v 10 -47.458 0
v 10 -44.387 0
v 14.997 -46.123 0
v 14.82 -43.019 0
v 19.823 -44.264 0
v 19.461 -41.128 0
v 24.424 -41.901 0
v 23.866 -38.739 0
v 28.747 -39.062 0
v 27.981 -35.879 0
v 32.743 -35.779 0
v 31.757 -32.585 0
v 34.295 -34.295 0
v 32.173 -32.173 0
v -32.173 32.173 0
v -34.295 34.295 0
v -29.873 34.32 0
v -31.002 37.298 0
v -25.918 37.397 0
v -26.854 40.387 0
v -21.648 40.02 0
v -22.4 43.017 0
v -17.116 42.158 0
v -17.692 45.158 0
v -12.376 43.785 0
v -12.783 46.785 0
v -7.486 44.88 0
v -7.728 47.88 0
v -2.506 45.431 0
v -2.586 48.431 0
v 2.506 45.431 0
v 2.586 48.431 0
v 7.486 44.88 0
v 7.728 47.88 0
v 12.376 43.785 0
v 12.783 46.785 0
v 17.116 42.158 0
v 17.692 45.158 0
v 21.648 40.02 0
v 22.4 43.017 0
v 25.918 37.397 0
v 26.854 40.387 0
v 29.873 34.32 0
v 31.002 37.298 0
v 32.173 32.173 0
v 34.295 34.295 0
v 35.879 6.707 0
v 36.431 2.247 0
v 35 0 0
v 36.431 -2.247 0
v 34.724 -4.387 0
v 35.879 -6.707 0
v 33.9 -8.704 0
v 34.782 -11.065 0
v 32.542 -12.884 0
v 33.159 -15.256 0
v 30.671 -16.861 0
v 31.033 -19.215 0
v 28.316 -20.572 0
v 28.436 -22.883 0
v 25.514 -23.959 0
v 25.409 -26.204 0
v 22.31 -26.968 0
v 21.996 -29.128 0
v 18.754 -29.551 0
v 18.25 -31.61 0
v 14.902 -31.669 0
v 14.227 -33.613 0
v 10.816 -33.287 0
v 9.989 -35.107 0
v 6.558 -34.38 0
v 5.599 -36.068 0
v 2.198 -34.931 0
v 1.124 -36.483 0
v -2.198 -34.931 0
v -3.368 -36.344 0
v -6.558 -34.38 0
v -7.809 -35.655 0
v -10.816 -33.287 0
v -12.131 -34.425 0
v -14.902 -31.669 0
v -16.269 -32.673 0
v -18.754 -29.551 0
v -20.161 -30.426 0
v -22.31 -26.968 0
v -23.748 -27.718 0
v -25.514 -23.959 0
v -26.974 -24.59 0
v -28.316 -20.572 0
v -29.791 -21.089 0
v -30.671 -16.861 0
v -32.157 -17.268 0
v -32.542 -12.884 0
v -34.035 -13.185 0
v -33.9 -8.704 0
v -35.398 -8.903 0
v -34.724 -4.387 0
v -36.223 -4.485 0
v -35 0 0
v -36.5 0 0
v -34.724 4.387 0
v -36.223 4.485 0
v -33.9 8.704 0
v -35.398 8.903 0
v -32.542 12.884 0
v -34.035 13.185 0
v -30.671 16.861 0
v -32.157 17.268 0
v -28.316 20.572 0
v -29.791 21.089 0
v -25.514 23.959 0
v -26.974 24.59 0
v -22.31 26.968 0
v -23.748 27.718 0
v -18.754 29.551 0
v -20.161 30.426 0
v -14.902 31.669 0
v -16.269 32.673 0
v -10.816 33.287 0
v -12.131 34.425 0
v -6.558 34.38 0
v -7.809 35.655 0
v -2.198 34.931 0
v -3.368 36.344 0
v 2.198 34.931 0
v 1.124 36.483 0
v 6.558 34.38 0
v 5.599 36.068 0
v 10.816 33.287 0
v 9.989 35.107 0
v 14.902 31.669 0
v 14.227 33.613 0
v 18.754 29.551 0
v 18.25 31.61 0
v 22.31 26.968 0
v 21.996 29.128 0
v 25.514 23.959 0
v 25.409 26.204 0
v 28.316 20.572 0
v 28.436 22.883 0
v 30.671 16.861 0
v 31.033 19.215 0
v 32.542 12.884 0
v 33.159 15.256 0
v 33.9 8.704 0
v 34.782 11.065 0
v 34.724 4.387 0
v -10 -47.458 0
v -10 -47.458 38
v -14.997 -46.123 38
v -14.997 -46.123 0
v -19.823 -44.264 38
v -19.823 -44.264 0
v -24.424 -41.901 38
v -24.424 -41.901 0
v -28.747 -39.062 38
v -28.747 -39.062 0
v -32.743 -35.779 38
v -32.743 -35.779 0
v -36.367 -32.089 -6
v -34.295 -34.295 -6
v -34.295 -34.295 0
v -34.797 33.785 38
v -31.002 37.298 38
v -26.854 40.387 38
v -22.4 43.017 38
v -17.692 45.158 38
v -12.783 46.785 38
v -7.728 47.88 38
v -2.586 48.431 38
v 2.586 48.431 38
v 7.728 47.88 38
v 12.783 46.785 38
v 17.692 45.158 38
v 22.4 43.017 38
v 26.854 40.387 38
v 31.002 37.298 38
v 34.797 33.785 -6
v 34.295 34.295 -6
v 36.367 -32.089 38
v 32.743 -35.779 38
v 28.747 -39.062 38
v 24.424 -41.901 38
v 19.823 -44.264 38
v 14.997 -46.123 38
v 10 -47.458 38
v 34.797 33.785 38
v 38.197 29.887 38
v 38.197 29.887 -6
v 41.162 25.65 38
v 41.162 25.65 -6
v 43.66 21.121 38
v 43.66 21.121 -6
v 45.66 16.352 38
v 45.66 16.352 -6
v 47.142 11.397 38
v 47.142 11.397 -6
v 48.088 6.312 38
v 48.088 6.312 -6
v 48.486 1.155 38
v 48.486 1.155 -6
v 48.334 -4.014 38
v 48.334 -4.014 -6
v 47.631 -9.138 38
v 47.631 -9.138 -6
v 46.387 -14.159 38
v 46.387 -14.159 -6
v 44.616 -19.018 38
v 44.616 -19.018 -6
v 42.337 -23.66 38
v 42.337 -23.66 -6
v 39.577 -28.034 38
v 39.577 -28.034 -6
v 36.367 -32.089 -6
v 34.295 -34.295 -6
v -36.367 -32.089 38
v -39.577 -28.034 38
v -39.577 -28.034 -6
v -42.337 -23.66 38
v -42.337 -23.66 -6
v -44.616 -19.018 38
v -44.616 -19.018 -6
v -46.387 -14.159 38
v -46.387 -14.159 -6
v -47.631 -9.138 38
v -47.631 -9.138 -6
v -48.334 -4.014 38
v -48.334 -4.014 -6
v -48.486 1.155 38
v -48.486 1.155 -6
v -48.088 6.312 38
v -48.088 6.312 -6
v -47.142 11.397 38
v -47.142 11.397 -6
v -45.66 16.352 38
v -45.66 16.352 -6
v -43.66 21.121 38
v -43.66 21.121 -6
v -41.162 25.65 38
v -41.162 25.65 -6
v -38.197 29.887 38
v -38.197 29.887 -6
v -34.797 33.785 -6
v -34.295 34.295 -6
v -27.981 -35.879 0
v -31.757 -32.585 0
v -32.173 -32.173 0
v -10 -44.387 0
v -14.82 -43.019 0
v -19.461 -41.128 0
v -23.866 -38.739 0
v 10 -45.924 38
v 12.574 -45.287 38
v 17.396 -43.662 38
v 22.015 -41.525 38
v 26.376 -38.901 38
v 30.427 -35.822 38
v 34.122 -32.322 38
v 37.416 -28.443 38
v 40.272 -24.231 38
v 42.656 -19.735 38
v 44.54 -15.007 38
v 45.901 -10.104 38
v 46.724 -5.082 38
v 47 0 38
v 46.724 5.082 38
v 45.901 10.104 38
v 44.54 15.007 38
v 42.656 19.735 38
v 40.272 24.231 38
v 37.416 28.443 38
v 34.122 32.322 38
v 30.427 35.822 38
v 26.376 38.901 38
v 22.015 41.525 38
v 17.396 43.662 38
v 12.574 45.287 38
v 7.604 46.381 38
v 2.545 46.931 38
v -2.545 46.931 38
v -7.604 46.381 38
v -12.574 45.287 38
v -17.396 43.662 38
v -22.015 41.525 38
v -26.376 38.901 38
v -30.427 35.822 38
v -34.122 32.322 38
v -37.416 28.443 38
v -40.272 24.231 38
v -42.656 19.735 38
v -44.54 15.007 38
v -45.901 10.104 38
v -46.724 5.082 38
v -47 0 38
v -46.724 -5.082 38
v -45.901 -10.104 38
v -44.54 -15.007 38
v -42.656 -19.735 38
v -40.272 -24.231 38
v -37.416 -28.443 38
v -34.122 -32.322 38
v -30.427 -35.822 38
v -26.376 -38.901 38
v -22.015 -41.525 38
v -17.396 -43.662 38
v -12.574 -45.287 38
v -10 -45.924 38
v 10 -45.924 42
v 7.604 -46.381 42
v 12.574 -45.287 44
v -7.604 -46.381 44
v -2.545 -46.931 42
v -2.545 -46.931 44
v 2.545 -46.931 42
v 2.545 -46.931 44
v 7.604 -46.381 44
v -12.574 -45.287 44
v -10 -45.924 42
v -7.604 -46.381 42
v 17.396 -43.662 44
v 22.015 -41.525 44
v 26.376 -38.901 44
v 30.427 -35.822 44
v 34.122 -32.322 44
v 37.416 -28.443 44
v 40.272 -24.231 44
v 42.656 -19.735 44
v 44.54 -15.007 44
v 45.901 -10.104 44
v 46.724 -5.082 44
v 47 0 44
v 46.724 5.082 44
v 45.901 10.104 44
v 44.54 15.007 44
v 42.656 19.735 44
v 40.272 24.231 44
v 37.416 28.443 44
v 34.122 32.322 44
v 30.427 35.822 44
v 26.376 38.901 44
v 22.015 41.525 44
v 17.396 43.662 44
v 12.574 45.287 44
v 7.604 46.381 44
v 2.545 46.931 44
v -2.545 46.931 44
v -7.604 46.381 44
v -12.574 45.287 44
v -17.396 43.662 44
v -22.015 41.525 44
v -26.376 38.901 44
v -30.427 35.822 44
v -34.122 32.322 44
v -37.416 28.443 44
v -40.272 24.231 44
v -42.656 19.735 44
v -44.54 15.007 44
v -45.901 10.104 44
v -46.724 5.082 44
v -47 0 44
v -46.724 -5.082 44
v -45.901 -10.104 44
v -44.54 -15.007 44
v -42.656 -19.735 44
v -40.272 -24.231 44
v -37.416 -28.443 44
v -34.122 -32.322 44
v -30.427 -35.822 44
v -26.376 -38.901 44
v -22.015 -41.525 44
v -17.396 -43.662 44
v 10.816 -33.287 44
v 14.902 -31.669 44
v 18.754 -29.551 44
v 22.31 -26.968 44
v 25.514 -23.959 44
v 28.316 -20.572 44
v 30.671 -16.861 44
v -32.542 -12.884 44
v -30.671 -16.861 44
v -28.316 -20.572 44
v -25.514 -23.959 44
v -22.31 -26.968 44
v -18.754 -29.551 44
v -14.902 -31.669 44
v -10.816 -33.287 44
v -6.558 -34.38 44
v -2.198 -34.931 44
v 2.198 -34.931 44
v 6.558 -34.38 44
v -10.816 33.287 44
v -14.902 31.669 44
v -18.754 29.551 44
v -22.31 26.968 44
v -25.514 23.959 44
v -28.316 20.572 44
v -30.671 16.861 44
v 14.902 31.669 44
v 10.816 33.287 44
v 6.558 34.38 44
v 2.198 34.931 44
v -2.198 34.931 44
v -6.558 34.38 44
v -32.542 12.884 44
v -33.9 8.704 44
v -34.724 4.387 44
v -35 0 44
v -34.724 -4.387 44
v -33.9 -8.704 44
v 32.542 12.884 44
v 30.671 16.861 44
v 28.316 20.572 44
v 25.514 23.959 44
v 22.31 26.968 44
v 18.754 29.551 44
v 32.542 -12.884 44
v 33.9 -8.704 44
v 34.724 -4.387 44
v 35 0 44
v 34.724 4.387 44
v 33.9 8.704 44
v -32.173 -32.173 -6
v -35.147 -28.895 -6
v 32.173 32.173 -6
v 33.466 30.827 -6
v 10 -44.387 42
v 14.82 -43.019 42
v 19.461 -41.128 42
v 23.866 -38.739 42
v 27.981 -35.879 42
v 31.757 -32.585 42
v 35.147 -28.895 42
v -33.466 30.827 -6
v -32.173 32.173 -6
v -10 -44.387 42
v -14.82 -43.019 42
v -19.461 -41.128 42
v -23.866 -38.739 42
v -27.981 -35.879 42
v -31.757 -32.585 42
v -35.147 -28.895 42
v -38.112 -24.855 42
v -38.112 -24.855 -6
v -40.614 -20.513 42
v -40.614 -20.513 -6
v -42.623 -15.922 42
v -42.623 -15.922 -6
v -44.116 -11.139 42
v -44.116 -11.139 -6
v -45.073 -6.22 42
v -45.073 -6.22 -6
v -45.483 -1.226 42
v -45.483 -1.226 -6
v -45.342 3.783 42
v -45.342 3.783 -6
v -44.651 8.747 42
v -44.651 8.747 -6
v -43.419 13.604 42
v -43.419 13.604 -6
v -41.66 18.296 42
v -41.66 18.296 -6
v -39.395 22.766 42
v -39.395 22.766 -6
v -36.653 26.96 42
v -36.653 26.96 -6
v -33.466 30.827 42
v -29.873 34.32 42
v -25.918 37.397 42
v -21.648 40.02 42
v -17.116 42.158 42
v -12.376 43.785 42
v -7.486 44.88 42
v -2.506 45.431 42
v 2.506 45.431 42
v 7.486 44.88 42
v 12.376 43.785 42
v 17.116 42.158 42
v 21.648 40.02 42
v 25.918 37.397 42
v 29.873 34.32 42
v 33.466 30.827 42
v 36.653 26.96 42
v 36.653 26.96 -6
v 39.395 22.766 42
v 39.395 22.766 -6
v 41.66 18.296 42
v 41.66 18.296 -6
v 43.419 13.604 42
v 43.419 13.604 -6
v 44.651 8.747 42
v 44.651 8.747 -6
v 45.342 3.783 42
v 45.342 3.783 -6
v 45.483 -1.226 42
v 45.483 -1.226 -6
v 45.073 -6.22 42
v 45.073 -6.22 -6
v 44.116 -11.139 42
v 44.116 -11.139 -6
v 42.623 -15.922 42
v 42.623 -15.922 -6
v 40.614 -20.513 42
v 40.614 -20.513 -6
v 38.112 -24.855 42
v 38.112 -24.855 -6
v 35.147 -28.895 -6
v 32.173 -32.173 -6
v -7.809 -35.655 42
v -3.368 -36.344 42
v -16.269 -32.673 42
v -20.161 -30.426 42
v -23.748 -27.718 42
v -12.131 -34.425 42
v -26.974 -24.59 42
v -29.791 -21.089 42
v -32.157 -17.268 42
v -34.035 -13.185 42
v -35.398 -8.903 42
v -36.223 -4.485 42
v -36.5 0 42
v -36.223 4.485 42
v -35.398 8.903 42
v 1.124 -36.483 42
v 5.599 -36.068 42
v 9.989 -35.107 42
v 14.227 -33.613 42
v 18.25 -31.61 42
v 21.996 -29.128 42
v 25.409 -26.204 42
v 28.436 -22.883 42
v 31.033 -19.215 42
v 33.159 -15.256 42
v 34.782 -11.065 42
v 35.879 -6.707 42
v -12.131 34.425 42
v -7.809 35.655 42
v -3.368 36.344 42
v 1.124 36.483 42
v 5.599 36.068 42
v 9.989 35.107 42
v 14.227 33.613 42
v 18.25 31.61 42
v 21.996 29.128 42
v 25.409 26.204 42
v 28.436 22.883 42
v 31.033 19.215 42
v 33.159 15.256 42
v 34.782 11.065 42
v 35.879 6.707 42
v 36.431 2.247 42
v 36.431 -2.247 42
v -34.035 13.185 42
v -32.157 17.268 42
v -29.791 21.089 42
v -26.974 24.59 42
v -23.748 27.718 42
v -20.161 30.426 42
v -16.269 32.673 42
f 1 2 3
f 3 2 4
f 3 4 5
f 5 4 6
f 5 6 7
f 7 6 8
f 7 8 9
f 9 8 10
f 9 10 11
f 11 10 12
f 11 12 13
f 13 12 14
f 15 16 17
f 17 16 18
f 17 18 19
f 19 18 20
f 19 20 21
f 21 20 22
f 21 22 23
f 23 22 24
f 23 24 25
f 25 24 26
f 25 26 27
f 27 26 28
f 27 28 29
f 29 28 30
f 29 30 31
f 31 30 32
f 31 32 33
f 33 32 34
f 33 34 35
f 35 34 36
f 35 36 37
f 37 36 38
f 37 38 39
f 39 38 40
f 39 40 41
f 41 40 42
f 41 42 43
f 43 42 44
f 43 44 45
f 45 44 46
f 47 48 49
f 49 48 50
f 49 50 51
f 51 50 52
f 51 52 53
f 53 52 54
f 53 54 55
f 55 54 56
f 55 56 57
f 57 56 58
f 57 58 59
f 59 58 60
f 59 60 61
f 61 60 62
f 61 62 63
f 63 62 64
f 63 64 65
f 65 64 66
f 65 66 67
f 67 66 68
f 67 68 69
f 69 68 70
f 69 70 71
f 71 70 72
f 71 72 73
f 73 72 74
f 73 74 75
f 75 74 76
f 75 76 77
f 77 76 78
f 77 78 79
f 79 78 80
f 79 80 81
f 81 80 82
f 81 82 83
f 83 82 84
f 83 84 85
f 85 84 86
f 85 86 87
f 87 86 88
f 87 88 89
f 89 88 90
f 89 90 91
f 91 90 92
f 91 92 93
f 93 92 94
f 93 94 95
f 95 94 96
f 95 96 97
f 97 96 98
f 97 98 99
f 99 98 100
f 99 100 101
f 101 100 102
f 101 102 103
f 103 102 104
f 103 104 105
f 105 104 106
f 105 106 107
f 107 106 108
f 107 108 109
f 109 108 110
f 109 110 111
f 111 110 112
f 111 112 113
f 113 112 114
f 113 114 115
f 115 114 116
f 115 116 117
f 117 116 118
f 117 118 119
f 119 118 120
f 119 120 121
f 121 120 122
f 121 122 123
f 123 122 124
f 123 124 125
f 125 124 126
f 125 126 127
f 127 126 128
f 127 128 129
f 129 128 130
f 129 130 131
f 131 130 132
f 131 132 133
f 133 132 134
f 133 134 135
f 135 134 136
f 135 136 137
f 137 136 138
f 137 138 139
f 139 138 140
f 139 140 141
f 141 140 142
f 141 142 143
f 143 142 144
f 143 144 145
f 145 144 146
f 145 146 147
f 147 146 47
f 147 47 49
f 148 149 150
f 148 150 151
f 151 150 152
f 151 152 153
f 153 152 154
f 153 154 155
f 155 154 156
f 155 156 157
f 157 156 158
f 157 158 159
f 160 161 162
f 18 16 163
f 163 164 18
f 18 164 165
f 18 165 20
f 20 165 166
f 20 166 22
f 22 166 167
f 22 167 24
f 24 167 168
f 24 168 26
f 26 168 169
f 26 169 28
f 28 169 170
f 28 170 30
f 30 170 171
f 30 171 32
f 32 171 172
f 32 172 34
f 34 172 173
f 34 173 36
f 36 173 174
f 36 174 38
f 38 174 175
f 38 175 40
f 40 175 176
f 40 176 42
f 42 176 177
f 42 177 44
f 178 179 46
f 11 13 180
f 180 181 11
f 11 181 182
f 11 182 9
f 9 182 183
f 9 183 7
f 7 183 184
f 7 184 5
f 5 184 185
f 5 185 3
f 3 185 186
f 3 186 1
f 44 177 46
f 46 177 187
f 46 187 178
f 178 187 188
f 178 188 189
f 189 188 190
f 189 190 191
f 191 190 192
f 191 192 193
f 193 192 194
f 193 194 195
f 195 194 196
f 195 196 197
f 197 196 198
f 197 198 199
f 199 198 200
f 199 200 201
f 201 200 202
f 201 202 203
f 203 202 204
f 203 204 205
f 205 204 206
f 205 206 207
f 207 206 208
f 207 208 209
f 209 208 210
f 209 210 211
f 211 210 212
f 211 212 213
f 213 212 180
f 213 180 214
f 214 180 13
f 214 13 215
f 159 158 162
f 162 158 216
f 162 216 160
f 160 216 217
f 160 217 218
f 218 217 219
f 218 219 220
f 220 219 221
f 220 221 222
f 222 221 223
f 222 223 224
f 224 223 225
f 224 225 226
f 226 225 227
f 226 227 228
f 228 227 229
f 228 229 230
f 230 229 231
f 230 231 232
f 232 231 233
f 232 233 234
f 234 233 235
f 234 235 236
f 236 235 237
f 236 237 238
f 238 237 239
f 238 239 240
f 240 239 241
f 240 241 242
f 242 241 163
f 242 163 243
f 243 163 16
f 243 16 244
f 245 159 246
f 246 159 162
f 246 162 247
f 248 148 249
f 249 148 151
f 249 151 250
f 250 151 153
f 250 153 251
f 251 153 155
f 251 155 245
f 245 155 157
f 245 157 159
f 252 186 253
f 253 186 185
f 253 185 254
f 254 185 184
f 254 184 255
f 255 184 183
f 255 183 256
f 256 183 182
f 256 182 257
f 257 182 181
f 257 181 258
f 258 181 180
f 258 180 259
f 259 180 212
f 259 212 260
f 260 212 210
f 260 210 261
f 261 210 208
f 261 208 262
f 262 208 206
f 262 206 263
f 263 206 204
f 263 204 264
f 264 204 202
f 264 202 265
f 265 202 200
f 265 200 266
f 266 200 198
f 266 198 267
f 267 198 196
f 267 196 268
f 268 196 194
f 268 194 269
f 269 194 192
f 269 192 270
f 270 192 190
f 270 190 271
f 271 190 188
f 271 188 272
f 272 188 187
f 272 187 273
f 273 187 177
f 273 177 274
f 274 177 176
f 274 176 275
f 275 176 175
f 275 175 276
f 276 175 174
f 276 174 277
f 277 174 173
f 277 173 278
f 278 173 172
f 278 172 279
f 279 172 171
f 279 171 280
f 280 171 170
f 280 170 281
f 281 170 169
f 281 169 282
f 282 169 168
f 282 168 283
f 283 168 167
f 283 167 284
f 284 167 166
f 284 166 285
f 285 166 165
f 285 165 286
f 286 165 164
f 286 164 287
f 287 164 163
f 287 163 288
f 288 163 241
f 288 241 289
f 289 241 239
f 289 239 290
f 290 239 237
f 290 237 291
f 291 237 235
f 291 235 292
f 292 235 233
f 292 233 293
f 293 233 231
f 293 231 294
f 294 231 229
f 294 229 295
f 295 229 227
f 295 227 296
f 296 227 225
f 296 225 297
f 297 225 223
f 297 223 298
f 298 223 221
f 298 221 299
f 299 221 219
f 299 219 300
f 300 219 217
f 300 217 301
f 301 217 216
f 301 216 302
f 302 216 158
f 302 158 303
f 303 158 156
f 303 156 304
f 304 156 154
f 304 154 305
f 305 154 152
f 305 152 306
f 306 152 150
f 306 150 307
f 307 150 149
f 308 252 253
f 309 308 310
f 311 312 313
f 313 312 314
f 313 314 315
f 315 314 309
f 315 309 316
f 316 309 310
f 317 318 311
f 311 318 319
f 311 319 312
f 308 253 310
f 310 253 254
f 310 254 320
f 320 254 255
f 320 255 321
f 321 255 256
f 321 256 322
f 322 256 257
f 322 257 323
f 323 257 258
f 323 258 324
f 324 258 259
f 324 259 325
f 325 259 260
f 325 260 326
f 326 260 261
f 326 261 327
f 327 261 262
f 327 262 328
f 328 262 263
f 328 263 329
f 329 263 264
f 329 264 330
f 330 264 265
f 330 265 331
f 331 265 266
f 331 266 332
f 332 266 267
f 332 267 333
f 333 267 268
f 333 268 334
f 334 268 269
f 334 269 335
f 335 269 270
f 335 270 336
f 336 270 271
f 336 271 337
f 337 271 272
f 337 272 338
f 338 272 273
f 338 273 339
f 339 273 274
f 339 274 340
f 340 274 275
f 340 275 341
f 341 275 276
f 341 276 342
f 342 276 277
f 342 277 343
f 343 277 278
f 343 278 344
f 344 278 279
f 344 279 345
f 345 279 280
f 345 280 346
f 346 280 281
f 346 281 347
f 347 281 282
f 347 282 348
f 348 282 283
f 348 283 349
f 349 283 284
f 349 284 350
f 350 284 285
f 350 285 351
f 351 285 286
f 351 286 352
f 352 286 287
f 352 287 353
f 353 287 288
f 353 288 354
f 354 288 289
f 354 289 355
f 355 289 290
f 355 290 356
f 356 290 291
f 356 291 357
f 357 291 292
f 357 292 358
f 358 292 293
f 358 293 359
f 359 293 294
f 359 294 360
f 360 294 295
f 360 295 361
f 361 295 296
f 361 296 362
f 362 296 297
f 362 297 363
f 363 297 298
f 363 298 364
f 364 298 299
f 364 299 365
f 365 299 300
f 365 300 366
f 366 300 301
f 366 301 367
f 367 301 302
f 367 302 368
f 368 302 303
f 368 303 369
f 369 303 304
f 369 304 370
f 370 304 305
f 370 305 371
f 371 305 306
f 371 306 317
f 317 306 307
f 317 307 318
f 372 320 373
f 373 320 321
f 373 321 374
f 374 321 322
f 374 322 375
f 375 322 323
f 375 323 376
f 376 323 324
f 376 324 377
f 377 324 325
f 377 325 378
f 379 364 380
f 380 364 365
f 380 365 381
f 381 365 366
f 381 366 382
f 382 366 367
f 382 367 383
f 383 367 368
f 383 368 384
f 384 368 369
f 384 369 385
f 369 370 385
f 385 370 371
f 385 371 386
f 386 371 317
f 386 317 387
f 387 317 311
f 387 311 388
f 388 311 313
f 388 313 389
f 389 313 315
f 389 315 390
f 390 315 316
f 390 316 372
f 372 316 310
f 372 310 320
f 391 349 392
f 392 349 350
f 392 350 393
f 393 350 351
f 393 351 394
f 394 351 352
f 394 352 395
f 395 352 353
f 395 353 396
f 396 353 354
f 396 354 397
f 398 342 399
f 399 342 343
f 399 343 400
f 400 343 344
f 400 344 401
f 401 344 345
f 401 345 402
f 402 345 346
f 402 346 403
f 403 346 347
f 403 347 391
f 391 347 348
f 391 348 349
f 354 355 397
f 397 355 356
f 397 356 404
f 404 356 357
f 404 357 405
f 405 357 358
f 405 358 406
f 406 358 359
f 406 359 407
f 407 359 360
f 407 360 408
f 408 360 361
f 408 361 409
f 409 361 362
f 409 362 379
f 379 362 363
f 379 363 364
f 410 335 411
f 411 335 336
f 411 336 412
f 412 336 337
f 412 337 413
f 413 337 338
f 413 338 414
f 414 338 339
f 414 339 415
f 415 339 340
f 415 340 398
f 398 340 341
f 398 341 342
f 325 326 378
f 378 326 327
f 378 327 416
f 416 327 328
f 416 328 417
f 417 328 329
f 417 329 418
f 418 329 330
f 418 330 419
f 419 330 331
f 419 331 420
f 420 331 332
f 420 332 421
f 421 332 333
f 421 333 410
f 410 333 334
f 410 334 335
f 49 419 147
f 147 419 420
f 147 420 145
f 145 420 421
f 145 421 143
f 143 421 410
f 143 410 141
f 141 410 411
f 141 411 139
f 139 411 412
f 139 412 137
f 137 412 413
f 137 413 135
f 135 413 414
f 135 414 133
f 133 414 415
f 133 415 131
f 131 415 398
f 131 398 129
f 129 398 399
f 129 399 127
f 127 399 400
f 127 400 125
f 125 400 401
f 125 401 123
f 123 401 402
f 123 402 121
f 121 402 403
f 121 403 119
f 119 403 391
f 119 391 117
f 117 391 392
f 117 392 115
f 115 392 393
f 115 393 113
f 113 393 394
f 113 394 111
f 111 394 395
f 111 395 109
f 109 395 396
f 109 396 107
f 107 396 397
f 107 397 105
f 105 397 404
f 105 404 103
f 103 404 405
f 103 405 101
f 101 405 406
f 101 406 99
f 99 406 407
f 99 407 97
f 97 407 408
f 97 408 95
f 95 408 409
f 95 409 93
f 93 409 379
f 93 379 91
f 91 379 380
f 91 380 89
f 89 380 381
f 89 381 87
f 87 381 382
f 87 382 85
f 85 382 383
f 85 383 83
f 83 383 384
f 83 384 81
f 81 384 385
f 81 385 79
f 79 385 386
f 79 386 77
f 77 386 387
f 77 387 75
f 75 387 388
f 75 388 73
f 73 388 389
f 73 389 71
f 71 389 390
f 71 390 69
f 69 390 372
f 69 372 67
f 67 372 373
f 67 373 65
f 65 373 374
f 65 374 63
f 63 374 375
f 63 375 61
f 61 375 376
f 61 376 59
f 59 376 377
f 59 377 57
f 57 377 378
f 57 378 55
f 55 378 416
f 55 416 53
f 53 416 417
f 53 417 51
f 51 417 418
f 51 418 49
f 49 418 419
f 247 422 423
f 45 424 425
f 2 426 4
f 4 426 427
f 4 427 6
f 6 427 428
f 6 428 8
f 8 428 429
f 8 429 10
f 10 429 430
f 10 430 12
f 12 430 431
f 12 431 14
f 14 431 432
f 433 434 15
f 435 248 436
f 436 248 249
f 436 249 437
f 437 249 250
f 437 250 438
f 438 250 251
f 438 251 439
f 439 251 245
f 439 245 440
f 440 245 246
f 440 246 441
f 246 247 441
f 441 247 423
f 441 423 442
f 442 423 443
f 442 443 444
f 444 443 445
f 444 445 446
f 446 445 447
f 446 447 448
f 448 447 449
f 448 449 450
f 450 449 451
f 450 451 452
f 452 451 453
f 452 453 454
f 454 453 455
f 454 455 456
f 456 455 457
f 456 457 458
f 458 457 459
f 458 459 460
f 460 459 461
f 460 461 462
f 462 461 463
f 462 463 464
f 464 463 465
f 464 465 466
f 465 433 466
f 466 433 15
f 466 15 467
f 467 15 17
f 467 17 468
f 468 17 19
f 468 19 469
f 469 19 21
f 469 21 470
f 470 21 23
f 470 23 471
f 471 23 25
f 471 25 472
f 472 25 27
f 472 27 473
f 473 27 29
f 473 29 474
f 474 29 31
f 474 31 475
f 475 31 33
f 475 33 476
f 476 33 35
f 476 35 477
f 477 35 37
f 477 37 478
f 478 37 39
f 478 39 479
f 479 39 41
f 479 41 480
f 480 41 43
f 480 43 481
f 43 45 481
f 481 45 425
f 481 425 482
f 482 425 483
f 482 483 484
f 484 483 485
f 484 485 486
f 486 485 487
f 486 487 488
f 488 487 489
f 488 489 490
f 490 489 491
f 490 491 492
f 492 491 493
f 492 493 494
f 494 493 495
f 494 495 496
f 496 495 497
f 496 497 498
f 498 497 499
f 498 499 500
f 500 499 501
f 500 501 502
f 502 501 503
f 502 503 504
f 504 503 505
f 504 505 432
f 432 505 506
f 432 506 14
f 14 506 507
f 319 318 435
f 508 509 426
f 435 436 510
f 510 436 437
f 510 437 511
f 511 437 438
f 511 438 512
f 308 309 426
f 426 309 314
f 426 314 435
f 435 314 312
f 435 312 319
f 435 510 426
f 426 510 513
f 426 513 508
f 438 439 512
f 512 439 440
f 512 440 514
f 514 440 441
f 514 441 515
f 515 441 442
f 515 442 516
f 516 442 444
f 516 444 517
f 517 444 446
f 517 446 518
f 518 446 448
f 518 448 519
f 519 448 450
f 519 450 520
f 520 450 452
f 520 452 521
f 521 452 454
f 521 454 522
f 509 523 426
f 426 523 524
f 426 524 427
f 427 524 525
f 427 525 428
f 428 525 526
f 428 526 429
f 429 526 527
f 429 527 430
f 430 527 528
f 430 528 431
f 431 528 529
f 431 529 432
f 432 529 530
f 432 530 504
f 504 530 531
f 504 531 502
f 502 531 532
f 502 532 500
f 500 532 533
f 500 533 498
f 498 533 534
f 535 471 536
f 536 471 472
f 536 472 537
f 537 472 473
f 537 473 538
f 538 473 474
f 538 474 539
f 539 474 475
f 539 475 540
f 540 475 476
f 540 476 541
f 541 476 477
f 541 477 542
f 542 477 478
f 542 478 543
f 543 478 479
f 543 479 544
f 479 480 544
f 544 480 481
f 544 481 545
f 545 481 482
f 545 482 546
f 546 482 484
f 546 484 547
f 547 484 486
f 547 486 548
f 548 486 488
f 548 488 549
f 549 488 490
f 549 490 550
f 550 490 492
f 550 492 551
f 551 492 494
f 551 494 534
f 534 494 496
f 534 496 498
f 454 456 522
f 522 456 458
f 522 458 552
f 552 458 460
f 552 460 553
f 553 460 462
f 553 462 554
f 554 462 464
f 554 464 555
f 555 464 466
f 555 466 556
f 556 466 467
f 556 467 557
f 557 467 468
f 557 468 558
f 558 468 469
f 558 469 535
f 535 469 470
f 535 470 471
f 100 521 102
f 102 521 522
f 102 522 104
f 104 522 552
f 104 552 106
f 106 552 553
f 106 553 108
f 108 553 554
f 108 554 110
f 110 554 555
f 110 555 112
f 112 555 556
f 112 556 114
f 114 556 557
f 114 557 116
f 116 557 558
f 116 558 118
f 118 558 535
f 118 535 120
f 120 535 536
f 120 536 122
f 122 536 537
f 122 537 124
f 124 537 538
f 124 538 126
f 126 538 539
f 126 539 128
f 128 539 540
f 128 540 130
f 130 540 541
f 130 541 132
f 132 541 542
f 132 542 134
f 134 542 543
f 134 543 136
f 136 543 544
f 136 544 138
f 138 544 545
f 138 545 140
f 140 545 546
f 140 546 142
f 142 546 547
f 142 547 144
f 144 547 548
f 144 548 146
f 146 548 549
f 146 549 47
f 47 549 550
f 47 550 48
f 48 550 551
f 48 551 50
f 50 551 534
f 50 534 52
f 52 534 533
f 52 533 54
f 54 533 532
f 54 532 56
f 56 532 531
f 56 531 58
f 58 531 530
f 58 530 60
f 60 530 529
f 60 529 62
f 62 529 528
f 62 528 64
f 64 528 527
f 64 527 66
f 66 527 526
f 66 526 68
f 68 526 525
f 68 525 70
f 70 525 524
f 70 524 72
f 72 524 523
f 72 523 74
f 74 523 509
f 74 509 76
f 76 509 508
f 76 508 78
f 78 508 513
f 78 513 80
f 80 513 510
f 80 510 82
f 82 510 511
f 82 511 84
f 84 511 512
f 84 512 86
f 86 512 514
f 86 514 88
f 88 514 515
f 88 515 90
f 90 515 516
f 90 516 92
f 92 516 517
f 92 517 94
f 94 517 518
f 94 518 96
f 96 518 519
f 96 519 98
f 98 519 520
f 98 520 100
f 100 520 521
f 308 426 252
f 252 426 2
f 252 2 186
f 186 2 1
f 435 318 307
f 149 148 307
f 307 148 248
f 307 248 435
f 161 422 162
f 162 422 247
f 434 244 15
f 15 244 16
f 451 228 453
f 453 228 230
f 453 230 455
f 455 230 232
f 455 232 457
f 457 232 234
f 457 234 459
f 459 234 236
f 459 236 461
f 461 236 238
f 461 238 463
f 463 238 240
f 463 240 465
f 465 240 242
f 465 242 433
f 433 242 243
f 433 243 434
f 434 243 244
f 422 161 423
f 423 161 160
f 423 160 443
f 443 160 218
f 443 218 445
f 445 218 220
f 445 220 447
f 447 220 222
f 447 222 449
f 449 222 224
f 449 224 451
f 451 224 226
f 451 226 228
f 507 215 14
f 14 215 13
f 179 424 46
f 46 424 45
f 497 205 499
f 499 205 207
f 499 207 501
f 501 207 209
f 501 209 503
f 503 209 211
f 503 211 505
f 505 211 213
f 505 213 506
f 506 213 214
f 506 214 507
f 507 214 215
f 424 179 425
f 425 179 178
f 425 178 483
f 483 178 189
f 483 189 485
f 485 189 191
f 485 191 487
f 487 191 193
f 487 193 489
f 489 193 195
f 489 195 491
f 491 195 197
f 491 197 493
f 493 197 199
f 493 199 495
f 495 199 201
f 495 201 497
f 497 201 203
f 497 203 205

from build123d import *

# Parameters (mm, degrees)
ESQUISSE1_R             = 48.5
BOSS_EXTRU_1_DEPTH      = 44
ESQUISSE2_R             = 48.5
ESQUISSE2_R_2           = 47
ENL_V_MAT_EXTRU_1_DEPTH = 6
ESQUISSE3_R             = 35
ENL_V_MAT_EXTRU_2_DEPTH = 45
ESQUISSE5_R             = 45.5
ESQUISSE5_R_2           = 36.5
ENL_V_MAT_EXTRU_3_DEPTH = 42
ESQUISSE6_W             = 20
ESQUISSE6_H             = 4.166829754
ENL_V_MAT_EXTRU_5_DEPTH = 42
BOSS_EXTRU_2_DEPTH      = 6


with BuildPart() as part:
    # Esquisse1 → Boss.-Extru.1 (new body)
    with BuildSketch(Plane.XY):
        Circle(ESQUISSE1_R)
    extrude(amount=BOSS_EXTRU_1_DEPTH)

    # Esquisse2 → Enlèv. mat.-Extru.1 (cut)
    with BuildSketch(Plane.XY.offset(44)):
        Circle(ESQUISSE2_R)
        Circle(ESQUISSE2_R_2, mode=Mode.SUBTRACT)
    extrude(amount=-ENL_V_MAT_EXTRU_1_DEPTH, mode=Mode.SUBTRACT)

    # Esquisse3 → Enlèv. mat.-Extru.2 (cut, through all)
    with BuildSketch(Plane.XY.offset(44)):
        Circle(ESQUISSE3_R)
    extrude(amount=-ENL_V_MAT_EXTRU_2_DEPTH, mode=Mode.SUBTRACT)

    # Esquisse5 → Enlèv. mat.-Extru.3 (cut)
    with BuildSketch(Plane(origin=(0, 0, 0), x_dir=(-1, 0, 0), z_dir=(0, 0, -1))):
        Circle(ESQUISSE5_R)
        Circle(ESQUISSE5_R_2, mode=Mode.SUBTRACT)
    extrude(amount=-ENL_V_MAT_EXTRU_3_DEPTH, mode=Mode.SUBTRACT)

    # Esquisse6 → Enlèv. mat.-Extru.5 (cut)
    with BuildSketch(Plane(origin=(0, 0, 0), x_dir=(-1, 0, 0), z_dir=(0, 0, -1))):
        with Locations((0, -46.470913117)):
            Rectangle(ESQUISSE6_W, ESQUISSE6_H)
    extrude(amount=-ENL_V_MAT_EXTRU_5_DEPTH, mode=Mode.SUBTRACT)

    # Esquisse8 → Boss.-Extru.2 (add)
    with BuildSketch(Plane(origin=(0, 0, 0), x_dir=(-1, 0, 0), z_dir=(0, 0, -1))):
        with BuildLine():
            ThreePointArc((34.294678888, -34.294678888), (48.5, 0), (34.294678888, 34.294678888))
            Line((34.294678888, 34.294678888), (32.173358544, 32.173358544))
            ThreePointArc((32.173358544, 32.173358544), (45.5, 0), (32.173358544, -32.173358544))
            Line((32.173358544, -32.173358544), (34.294678888, -34.294678888))
        make_face()
        with BuildLine():
            ThreePointArc((-34.294678888, -34.294678888), (-48.5, 0), (-34.294678888, 34.294678888))
            Line((-34.294678888, 34.294678888), (-32.173358544, 32.173358544))
            ThreePointArc((-32.173358544, 32.173358544), (-45.5, 0), (-32.173358544, -32.173358544))
            Line((-32.173358544, -32.173358544), (-34.294678888, -34.294678888))
        make_face()
    extrude(amount=BOSS_EXTRU_2_DEPTH)


solid = part.part
